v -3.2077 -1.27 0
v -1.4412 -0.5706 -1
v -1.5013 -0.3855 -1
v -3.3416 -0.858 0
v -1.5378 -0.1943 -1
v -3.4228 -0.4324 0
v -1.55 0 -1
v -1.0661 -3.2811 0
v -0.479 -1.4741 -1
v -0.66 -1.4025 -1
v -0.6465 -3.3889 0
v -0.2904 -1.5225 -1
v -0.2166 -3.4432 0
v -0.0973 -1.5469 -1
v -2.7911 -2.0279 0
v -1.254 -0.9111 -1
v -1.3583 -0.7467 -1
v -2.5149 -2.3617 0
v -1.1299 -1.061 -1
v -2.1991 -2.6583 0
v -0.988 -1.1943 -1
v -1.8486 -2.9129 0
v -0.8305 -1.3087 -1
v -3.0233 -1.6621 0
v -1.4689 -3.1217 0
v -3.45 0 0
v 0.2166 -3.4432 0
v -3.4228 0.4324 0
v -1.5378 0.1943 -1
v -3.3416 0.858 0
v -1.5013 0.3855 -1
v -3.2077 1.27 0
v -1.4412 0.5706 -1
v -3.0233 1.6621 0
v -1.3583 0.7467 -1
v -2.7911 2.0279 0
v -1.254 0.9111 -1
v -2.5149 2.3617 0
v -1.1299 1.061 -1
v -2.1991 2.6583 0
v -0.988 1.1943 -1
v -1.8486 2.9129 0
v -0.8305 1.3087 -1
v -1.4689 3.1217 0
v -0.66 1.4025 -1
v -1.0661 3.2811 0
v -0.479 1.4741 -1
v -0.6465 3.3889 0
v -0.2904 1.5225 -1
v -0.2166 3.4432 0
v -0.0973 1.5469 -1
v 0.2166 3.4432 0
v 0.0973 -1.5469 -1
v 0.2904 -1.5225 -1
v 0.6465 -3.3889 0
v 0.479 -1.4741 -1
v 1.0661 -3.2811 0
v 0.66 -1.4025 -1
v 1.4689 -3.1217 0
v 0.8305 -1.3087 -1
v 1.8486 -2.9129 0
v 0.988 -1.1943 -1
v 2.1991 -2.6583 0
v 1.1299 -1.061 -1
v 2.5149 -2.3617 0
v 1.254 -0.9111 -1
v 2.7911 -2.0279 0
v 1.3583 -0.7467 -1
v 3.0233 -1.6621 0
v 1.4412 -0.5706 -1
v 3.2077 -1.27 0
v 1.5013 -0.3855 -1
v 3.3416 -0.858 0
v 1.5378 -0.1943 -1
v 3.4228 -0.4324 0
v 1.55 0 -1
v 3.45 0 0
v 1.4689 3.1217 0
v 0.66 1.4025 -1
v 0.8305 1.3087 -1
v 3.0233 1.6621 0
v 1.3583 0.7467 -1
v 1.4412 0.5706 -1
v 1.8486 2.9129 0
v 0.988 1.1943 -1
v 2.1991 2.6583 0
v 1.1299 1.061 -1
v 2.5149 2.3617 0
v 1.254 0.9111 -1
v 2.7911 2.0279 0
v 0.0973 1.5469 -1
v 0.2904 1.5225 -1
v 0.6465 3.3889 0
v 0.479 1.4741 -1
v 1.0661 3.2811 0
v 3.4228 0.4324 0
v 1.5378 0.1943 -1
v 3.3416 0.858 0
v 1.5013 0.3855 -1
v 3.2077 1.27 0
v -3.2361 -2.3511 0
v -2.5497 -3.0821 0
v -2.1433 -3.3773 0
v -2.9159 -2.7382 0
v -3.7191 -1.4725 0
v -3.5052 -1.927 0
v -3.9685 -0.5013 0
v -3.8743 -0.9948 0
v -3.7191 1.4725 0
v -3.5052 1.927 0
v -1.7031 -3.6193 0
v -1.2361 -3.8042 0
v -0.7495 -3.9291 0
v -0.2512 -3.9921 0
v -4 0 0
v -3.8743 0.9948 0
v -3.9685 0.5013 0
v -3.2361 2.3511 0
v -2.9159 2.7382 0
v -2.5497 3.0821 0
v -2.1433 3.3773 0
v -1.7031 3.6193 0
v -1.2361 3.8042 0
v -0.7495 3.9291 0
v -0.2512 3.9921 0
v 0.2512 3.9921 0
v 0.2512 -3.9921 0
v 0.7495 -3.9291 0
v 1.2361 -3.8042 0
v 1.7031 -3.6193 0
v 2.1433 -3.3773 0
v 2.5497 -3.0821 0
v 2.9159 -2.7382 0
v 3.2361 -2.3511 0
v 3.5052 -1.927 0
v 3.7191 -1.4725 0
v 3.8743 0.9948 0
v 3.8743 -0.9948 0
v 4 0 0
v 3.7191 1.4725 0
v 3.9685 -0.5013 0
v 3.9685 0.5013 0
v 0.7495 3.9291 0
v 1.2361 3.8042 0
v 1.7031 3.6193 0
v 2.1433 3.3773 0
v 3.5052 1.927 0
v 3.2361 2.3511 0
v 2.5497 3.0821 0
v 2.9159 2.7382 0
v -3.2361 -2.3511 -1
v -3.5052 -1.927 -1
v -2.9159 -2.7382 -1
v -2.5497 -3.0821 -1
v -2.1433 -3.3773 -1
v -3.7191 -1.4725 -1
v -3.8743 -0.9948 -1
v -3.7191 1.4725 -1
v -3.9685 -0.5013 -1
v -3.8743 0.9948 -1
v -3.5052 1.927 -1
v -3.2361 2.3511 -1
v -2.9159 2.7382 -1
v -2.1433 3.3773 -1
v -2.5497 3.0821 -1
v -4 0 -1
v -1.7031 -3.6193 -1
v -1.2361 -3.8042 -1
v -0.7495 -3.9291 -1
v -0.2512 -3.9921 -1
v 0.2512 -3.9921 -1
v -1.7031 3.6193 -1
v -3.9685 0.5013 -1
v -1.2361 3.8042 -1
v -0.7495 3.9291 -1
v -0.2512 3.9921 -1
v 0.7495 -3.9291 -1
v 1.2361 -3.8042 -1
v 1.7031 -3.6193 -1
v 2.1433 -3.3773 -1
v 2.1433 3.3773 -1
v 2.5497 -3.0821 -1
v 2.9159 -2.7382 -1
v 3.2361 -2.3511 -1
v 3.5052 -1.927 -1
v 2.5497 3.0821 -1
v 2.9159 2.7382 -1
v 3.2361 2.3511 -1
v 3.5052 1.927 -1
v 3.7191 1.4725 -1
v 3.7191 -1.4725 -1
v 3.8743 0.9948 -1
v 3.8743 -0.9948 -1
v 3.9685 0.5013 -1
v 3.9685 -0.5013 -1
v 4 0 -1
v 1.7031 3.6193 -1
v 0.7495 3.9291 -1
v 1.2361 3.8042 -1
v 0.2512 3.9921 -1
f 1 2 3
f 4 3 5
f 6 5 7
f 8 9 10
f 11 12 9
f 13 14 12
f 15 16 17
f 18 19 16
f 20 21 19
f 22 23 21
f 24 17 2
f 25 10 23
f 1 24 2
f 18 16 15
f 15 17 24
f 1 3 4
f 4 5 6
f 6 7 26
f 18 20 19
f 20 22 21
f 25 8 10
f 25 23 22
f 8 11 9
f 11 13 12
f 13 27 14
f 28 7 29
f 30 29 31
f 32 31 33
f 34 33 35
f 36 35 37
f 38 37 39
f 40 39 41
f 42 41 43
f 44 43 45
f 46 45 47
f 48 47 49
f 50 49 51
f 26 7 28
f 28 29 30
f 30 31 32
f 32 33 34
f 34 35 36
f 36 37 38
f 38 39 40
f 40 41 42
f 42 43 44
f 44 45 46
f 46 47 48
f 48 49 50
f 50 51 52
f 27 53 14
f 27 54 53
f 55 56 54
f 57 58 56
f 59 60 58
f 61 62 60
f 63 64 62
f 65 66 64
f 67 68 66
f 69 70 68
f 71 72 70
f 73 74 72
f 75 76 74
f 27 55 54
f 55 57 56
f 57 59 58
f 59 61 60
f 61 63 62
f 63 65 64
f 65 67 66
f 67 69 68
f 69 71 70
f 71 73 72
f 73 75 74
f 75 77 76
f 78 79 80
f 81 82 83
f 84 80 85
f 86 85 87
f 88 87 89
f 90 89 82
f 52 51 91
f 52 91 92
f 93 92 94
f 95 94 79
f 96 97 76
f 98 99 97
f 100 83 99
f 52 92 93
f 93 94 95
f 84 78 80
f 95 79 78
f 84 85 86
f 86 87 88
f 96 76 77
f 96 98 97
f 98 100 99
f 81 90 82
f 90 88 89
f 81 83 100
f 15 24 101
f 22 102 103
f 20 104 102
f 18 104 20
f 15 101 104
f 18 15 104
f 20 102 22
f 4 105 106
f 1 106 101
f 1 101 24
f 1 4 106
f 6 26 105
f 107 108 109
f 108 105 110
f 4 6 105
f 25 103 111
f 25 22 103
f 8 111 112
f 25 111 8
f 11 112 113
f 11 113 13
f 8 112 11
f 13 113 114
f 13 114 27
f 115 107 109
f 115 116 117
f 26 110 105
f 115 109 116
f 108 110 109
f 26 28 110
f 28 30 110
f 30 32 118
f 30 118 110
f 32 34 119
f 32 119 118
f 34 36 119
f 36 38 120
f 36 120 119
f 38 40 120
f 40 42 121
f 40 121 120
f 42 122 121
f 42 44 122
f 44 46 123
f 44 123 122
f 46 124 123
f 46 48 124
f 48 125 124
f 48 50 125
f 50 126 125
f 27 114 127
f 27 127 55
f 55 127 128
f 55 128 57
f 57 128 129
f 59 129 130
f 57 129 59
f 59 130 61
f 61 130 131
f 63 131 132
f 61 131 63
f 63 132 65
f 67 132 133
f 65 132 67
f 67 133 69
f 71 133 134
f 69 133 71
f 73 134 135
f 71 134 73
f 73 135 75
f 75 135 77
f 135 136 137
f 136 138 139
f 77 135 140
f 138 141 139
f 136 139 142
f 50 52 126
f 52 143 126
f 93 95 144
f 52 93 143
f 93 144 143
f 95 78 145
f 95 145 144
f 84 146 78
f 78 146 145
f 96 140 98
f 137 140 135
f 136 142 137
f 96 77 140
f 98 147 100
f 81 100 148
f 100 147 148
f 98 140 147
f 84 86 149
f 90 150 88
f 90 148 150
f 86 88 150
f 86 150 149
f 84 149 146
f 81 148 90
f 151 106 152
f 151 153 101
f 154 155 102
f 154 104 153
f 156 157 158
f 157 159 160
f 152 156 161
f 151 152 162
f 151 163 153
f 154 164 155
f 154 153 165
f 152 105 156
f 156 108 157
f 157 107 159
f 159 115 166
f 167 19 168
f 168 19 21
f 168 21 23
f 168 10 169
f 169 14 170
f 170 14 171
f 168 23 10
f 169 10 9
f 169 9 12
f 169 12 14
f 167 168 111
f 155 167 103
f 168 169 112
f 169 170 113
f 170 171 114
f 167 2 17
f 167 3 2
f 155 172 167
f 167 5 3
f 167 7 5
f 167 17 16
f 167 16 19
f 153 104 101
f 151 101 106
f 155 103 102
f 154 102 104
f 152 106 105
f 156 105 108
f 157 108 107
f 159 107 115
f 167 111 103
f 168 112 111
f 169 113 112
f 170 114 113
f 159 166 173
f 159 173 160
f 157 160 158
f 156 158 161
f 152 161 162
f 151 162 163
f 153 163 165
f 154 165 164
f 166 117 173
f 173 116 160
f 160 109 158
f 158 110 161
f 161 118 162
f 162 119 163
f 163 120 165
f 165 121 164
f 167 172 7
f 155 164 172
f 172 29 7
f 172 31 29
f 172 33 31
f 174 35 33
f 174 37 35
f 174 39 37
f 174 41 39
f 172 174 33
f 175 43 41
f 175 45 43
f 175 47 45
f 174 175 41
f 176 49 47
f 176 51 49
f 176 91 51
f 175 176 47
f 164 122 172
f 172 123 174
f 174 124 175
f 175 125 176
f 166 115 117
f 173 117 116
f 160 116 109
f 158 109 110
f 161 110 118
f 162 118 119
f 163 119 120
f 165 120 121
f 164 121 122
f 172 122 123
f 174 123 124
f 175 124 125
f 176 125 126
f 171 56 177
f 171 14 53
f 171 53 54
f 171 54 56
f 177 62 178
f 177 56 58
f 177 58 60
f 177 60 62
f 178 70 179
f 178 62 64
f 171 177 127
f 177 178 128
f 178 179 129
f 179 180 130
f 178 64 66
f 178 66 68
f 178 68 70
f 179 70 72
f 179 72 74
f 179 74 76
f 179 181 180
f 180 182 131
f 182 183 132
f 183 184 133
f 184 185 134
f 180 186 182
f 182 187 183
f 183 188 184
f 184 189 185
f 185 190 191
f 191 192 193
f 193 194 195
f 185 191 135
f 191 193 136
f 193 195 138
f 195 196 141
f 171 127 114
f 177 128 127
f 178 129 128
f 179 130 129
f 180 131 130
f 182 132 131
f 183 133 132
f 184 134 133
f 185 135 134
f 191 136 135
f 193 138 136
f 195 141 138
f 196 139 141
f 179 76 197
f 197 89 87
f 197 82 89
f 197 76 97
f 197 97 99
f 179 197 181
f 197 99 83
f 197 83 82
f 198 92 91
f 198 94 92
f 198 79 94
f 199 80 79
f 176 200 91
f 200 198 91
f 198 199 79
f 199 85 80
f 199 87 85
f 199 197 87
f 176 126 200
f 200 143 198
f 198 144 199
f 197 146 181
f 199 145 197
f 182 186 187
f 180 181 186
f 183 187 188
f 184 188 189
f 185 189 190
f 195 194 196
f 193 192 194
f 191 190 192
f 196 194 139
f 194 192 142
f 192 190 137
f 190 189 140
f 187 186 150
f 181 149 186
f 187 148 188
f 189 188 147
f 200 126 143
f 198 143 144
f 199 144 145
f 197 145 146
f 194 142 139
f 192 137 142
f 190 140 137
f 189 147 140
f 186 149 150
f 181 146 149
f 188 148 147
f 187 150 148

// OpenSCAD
$fn = 50;

difference() {
	union() {
		translate(v = [0, 0, -1.0]) {
			cylinder(h = 1.0, r = 4.0);
		}
	}
	union() {
		translate(v = [0, 0, 0]) {
			rotate(a = [0, 0, 0]) {
				difference() {
					union() {
						translate(v = [0, 0, -4.0]) {
							cylinder(h = 4.0, r = 1.25);
						}
						translate(v = [0, 0, -1.0]) {
							cylinder(h = 1.0, r1 = 1.55, r2 = 3.45);
						}
						translate(v = [0, 0, -4.0]) {
							cylinder(h = 4.0, r = 1.55);
						}
						translate(v = [0, 0, -4.0]) {
							cylinder(h = 4.0, r = 1.25);
						}
					}
					union();
				}
			}
		}
	}
}
